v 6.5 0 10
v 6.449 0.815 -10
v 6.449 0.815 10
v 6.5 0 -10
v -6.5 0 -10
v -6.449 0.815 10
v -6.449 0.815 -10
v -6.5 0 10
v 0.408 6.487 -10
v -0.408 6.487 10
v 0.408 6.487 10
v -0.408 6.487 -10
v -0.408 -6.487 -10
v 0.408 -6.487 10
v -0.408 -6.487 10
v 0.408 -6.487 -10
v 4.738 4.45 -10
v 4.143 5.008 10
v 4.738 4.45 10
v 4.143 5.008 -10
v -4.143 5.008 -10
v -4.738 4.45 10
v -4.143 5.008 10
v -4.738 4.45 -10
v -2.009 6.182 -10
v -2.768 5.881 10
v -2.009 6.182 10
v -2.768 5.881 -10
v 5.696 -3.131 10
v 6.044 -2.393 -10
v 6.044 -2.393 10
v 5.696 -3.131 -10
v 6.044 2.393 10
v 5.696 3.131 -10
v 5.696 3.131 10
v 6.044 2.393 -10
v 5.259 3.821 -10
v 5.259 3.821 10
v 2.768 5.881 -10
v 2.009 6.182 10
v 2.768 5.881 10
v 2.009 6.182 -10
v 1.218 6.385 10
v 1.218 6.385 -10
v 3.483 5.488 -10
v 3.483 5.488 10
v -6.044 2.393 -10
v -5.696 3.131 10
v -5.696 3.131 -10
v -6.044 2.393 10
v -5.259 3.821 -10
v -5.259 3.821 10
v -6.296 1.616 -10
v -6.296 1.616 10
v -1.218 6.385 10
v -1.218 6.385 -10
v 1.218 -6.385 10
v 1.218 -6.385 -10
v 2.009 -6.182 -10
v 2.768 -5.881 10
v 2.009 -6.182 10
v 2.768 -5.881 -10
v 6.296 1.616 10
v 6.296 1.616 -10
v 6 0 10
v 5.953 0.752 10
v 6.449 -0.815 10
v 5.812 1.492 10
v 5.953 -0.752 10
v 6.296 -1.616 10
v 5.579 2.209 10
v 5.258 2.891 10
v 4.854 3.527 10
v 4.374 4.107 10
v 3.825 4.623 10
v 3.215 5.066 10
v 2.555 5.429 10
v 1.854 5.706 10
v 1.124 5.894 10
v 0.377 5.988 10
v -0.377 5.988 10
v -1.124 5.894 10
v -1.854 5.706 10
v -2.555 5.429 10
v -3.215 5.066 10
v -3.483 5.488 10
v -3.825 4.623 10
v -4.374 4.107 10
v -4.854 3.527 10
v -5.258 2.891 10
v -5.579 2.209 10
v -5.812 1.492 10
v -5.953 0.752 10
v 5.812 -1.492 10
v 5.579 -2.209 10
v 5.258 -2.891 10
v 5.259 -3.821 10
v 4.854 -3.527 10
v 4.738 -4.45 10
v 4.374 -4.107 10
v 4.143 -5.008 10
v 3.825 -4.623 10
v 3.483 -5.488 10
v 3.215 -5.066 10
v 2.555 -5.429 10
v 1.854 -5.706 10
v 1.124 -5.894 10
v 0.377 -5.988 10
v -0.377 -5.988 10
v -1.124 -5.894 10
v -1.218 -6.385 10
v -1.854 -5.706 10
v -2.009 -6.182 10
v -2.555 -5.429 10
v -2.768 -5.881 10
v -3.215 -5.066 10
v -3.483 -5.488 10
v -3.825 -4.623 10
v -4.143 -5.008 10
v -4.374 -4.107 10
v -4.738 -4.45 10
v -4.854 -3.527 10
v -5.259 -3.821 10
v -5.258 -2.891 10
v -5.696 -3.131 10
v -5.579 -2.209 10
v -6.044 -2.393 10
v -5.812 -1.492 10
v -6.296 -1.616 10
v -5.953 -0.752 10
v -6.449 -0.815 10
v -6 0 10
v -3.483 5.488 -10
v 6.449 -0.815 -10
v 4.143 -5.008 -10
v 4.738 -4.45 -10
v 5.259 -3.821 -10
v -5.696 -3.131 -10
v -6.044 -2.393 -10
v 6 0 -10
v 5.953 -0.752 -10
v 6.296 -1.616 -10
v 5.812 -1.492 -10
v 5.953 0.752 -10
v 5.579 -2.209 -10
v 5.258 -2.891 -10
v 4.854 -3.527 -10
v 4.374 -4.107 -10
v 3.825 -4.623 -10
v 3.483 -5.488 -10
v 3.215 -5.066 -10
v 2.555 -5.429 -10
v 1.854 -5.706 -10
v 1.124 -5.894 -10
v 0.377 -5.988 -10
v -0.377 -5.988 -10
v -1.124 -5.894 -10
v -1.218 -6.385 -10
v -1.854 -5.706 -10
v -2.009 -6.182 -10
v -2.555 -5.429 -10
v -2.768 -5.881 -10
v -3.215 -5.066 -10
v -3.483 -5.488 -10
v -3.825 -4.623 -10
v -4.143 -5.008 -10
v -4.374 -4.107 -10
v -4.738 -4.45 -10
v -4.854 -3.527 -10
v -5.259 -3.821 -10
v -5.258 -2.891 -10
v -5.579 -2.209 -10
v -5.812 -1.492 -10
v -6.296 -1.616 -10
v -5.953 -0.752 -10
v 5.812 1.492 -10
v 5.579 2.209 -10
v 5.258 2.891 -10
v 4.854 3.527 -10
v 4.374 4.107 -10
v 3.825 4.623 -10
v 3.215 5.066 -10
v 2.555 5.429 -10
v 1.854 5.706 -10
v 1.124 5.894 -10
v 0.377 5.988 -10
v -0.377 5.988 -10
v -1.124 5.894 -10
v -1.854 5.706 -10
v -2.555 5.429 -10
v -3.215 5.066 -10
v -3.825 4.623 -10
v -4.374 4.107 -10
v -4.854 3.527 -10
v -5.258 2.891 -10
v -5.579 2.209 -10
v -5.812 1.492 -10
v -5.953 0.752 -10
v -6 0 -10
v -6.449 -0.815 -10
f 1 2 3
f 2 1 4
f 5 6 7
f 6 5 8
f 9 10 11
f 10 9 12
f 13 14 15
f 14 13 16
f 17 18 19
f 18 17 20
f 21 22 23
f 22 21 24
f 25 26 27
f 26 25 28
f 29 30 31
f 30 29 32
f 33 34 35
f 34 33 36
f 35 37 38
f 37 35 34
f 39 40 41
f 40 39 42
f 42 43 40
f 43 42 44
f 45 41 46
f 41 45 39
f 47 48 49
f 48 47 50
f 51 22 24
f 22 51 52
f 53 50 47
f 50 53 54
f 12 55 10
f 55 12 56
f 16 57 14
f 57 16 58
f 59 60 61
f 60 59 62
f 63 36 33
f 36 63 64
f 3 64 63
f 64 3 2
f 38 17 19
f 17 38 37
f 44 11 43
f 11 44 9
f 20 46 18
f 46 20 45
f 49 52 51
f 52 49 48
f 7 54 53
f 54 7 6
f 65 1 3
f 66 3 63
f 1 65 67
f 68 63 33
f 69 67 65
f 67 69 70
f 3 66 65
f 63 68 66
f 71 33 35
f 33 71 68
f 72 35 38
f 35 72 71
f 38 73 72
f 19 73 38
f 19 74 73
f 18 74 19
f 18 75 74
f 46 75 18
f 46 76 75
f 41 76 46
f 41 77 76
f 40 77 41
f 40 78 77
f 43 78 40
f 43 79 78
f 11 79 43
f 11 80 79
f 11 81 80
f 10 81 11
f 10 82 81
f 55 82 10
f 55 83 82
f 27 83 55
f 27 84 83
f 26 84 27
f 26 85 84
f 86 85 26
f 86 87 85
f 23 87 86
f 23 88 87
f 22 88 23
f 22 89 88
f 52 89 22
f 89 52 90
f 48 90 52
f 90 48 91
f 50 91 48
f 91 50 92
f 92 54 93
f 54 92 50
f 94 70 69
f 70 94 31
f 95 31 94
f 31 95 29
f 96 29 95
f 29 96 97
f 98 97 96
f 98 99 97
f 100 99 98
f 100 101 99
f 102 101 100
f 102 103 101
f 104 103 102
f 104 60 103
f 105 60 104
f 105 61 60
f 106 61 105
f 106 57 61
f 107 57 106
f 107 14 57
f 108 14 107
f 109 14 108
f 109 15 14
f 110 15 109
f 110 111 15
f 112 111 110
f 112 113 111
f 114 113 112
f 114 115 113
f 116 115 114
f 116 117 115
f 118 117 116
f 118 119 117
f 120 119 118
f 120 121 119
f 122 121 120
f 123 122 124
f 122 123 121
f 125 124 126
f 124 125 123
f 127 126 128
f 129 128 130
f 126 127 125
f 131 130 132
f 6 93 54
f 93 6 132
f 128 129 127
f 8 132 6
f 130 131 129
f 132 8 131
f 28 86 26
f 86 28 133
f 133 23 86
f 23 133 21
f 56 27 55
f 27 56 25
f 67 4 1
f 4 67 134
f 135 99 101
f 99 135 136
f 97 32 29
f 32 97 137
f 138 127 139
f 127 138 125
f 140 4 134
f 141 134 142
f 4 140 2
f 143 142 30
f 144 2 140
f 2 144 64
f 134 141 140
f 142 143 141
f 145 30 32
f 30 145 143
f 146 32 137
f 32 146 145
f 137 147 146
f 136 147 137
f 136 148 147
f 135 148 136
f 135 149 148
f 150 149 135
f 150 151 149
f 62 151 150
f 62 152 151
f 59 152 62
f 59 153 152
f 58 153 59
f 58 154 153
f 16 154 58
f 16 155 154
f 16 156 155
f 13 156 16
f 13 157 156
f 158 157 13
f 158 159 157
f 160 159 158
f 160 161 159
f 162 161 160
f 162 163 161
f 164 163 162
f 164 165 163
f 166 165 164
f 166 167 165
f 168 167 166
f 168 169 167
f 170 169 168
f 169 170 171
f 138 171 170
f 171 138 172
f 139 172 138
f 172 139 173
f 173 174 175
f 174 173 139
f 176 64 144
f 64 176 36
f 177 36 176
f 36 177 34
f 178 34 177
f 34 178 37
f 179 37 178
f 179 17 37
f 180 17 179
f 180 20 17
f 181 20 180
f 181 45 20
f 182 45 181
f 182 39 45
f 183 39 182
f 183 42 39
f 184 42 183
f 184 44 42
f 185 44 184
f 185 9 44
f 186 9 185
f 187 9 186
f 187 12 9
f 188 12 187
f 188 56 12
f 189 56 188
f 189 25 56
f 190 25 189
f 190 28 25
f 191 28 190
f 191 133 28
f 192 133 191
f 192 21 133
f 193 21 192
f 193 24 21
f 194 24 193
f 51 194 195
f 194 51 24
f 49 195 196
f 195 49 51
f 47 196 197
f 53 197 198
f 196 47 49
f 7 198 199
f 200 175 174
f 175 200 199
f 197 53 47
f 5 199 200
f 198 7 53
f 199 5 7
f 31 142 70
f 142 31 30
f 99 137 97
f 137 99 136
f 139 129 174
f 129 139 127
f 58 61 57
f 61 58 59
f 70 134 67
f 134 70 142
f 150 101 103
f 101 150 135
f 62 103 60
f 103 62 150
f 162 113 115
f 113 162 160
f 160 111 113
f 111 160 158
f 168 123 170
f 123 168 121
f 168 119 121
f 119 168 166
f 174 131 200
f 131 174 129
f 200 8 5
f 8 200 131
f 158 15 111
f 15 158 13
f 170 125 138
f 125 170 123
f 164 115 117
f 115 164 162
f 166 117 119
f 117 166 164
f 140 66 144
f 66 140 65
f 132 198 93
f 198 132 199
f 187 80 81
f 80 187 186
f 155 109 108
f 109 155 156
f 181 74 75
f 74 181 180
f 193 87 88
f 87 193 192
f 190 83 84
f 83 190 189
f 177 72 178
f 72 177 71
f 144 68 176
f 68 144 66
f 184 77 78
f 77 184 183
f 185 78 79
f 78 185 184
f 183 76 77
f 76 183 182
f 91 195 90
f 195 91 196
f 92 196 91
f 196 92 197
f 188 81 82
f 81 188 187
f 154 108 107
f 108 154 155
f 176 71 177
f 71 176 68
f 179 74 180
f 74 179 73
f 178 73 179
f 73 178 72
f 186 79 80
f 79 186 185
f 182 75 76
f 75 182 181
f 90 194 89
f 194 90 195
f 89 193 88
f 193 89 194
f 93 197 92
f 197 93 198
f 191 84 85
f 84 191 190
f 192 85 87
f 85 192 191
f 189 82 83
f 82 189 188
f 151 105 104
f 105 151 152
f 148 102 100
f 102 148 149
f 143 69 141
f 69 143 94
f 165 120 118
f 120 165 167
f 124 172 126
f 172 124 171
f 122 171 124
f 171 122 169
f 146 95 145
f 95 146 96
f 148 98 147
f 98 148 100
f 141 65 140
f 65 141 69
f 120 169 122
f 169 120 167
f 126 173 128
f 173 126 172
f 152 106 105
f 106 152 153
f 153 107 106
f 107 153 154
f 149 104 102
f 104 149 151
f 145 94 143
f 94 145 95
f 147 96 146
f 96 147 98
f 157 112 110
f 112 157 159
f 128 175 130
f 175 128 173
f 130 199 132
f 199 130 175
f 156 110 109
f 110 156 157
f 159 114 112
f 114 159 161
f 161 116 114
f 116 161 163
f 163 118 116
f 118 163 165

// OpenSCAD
$fn = 50;


difference() {
	union() {
		translate(v = [0, 0, -10.0000000000]) {
			cylinder(h = 20, r = 6.5000000000);
		}
	}
	union() {
		translate(v = [0, 0, -100.0000000000]) {
			cylinder(h = 200, r = 6);
		}
	}
}
